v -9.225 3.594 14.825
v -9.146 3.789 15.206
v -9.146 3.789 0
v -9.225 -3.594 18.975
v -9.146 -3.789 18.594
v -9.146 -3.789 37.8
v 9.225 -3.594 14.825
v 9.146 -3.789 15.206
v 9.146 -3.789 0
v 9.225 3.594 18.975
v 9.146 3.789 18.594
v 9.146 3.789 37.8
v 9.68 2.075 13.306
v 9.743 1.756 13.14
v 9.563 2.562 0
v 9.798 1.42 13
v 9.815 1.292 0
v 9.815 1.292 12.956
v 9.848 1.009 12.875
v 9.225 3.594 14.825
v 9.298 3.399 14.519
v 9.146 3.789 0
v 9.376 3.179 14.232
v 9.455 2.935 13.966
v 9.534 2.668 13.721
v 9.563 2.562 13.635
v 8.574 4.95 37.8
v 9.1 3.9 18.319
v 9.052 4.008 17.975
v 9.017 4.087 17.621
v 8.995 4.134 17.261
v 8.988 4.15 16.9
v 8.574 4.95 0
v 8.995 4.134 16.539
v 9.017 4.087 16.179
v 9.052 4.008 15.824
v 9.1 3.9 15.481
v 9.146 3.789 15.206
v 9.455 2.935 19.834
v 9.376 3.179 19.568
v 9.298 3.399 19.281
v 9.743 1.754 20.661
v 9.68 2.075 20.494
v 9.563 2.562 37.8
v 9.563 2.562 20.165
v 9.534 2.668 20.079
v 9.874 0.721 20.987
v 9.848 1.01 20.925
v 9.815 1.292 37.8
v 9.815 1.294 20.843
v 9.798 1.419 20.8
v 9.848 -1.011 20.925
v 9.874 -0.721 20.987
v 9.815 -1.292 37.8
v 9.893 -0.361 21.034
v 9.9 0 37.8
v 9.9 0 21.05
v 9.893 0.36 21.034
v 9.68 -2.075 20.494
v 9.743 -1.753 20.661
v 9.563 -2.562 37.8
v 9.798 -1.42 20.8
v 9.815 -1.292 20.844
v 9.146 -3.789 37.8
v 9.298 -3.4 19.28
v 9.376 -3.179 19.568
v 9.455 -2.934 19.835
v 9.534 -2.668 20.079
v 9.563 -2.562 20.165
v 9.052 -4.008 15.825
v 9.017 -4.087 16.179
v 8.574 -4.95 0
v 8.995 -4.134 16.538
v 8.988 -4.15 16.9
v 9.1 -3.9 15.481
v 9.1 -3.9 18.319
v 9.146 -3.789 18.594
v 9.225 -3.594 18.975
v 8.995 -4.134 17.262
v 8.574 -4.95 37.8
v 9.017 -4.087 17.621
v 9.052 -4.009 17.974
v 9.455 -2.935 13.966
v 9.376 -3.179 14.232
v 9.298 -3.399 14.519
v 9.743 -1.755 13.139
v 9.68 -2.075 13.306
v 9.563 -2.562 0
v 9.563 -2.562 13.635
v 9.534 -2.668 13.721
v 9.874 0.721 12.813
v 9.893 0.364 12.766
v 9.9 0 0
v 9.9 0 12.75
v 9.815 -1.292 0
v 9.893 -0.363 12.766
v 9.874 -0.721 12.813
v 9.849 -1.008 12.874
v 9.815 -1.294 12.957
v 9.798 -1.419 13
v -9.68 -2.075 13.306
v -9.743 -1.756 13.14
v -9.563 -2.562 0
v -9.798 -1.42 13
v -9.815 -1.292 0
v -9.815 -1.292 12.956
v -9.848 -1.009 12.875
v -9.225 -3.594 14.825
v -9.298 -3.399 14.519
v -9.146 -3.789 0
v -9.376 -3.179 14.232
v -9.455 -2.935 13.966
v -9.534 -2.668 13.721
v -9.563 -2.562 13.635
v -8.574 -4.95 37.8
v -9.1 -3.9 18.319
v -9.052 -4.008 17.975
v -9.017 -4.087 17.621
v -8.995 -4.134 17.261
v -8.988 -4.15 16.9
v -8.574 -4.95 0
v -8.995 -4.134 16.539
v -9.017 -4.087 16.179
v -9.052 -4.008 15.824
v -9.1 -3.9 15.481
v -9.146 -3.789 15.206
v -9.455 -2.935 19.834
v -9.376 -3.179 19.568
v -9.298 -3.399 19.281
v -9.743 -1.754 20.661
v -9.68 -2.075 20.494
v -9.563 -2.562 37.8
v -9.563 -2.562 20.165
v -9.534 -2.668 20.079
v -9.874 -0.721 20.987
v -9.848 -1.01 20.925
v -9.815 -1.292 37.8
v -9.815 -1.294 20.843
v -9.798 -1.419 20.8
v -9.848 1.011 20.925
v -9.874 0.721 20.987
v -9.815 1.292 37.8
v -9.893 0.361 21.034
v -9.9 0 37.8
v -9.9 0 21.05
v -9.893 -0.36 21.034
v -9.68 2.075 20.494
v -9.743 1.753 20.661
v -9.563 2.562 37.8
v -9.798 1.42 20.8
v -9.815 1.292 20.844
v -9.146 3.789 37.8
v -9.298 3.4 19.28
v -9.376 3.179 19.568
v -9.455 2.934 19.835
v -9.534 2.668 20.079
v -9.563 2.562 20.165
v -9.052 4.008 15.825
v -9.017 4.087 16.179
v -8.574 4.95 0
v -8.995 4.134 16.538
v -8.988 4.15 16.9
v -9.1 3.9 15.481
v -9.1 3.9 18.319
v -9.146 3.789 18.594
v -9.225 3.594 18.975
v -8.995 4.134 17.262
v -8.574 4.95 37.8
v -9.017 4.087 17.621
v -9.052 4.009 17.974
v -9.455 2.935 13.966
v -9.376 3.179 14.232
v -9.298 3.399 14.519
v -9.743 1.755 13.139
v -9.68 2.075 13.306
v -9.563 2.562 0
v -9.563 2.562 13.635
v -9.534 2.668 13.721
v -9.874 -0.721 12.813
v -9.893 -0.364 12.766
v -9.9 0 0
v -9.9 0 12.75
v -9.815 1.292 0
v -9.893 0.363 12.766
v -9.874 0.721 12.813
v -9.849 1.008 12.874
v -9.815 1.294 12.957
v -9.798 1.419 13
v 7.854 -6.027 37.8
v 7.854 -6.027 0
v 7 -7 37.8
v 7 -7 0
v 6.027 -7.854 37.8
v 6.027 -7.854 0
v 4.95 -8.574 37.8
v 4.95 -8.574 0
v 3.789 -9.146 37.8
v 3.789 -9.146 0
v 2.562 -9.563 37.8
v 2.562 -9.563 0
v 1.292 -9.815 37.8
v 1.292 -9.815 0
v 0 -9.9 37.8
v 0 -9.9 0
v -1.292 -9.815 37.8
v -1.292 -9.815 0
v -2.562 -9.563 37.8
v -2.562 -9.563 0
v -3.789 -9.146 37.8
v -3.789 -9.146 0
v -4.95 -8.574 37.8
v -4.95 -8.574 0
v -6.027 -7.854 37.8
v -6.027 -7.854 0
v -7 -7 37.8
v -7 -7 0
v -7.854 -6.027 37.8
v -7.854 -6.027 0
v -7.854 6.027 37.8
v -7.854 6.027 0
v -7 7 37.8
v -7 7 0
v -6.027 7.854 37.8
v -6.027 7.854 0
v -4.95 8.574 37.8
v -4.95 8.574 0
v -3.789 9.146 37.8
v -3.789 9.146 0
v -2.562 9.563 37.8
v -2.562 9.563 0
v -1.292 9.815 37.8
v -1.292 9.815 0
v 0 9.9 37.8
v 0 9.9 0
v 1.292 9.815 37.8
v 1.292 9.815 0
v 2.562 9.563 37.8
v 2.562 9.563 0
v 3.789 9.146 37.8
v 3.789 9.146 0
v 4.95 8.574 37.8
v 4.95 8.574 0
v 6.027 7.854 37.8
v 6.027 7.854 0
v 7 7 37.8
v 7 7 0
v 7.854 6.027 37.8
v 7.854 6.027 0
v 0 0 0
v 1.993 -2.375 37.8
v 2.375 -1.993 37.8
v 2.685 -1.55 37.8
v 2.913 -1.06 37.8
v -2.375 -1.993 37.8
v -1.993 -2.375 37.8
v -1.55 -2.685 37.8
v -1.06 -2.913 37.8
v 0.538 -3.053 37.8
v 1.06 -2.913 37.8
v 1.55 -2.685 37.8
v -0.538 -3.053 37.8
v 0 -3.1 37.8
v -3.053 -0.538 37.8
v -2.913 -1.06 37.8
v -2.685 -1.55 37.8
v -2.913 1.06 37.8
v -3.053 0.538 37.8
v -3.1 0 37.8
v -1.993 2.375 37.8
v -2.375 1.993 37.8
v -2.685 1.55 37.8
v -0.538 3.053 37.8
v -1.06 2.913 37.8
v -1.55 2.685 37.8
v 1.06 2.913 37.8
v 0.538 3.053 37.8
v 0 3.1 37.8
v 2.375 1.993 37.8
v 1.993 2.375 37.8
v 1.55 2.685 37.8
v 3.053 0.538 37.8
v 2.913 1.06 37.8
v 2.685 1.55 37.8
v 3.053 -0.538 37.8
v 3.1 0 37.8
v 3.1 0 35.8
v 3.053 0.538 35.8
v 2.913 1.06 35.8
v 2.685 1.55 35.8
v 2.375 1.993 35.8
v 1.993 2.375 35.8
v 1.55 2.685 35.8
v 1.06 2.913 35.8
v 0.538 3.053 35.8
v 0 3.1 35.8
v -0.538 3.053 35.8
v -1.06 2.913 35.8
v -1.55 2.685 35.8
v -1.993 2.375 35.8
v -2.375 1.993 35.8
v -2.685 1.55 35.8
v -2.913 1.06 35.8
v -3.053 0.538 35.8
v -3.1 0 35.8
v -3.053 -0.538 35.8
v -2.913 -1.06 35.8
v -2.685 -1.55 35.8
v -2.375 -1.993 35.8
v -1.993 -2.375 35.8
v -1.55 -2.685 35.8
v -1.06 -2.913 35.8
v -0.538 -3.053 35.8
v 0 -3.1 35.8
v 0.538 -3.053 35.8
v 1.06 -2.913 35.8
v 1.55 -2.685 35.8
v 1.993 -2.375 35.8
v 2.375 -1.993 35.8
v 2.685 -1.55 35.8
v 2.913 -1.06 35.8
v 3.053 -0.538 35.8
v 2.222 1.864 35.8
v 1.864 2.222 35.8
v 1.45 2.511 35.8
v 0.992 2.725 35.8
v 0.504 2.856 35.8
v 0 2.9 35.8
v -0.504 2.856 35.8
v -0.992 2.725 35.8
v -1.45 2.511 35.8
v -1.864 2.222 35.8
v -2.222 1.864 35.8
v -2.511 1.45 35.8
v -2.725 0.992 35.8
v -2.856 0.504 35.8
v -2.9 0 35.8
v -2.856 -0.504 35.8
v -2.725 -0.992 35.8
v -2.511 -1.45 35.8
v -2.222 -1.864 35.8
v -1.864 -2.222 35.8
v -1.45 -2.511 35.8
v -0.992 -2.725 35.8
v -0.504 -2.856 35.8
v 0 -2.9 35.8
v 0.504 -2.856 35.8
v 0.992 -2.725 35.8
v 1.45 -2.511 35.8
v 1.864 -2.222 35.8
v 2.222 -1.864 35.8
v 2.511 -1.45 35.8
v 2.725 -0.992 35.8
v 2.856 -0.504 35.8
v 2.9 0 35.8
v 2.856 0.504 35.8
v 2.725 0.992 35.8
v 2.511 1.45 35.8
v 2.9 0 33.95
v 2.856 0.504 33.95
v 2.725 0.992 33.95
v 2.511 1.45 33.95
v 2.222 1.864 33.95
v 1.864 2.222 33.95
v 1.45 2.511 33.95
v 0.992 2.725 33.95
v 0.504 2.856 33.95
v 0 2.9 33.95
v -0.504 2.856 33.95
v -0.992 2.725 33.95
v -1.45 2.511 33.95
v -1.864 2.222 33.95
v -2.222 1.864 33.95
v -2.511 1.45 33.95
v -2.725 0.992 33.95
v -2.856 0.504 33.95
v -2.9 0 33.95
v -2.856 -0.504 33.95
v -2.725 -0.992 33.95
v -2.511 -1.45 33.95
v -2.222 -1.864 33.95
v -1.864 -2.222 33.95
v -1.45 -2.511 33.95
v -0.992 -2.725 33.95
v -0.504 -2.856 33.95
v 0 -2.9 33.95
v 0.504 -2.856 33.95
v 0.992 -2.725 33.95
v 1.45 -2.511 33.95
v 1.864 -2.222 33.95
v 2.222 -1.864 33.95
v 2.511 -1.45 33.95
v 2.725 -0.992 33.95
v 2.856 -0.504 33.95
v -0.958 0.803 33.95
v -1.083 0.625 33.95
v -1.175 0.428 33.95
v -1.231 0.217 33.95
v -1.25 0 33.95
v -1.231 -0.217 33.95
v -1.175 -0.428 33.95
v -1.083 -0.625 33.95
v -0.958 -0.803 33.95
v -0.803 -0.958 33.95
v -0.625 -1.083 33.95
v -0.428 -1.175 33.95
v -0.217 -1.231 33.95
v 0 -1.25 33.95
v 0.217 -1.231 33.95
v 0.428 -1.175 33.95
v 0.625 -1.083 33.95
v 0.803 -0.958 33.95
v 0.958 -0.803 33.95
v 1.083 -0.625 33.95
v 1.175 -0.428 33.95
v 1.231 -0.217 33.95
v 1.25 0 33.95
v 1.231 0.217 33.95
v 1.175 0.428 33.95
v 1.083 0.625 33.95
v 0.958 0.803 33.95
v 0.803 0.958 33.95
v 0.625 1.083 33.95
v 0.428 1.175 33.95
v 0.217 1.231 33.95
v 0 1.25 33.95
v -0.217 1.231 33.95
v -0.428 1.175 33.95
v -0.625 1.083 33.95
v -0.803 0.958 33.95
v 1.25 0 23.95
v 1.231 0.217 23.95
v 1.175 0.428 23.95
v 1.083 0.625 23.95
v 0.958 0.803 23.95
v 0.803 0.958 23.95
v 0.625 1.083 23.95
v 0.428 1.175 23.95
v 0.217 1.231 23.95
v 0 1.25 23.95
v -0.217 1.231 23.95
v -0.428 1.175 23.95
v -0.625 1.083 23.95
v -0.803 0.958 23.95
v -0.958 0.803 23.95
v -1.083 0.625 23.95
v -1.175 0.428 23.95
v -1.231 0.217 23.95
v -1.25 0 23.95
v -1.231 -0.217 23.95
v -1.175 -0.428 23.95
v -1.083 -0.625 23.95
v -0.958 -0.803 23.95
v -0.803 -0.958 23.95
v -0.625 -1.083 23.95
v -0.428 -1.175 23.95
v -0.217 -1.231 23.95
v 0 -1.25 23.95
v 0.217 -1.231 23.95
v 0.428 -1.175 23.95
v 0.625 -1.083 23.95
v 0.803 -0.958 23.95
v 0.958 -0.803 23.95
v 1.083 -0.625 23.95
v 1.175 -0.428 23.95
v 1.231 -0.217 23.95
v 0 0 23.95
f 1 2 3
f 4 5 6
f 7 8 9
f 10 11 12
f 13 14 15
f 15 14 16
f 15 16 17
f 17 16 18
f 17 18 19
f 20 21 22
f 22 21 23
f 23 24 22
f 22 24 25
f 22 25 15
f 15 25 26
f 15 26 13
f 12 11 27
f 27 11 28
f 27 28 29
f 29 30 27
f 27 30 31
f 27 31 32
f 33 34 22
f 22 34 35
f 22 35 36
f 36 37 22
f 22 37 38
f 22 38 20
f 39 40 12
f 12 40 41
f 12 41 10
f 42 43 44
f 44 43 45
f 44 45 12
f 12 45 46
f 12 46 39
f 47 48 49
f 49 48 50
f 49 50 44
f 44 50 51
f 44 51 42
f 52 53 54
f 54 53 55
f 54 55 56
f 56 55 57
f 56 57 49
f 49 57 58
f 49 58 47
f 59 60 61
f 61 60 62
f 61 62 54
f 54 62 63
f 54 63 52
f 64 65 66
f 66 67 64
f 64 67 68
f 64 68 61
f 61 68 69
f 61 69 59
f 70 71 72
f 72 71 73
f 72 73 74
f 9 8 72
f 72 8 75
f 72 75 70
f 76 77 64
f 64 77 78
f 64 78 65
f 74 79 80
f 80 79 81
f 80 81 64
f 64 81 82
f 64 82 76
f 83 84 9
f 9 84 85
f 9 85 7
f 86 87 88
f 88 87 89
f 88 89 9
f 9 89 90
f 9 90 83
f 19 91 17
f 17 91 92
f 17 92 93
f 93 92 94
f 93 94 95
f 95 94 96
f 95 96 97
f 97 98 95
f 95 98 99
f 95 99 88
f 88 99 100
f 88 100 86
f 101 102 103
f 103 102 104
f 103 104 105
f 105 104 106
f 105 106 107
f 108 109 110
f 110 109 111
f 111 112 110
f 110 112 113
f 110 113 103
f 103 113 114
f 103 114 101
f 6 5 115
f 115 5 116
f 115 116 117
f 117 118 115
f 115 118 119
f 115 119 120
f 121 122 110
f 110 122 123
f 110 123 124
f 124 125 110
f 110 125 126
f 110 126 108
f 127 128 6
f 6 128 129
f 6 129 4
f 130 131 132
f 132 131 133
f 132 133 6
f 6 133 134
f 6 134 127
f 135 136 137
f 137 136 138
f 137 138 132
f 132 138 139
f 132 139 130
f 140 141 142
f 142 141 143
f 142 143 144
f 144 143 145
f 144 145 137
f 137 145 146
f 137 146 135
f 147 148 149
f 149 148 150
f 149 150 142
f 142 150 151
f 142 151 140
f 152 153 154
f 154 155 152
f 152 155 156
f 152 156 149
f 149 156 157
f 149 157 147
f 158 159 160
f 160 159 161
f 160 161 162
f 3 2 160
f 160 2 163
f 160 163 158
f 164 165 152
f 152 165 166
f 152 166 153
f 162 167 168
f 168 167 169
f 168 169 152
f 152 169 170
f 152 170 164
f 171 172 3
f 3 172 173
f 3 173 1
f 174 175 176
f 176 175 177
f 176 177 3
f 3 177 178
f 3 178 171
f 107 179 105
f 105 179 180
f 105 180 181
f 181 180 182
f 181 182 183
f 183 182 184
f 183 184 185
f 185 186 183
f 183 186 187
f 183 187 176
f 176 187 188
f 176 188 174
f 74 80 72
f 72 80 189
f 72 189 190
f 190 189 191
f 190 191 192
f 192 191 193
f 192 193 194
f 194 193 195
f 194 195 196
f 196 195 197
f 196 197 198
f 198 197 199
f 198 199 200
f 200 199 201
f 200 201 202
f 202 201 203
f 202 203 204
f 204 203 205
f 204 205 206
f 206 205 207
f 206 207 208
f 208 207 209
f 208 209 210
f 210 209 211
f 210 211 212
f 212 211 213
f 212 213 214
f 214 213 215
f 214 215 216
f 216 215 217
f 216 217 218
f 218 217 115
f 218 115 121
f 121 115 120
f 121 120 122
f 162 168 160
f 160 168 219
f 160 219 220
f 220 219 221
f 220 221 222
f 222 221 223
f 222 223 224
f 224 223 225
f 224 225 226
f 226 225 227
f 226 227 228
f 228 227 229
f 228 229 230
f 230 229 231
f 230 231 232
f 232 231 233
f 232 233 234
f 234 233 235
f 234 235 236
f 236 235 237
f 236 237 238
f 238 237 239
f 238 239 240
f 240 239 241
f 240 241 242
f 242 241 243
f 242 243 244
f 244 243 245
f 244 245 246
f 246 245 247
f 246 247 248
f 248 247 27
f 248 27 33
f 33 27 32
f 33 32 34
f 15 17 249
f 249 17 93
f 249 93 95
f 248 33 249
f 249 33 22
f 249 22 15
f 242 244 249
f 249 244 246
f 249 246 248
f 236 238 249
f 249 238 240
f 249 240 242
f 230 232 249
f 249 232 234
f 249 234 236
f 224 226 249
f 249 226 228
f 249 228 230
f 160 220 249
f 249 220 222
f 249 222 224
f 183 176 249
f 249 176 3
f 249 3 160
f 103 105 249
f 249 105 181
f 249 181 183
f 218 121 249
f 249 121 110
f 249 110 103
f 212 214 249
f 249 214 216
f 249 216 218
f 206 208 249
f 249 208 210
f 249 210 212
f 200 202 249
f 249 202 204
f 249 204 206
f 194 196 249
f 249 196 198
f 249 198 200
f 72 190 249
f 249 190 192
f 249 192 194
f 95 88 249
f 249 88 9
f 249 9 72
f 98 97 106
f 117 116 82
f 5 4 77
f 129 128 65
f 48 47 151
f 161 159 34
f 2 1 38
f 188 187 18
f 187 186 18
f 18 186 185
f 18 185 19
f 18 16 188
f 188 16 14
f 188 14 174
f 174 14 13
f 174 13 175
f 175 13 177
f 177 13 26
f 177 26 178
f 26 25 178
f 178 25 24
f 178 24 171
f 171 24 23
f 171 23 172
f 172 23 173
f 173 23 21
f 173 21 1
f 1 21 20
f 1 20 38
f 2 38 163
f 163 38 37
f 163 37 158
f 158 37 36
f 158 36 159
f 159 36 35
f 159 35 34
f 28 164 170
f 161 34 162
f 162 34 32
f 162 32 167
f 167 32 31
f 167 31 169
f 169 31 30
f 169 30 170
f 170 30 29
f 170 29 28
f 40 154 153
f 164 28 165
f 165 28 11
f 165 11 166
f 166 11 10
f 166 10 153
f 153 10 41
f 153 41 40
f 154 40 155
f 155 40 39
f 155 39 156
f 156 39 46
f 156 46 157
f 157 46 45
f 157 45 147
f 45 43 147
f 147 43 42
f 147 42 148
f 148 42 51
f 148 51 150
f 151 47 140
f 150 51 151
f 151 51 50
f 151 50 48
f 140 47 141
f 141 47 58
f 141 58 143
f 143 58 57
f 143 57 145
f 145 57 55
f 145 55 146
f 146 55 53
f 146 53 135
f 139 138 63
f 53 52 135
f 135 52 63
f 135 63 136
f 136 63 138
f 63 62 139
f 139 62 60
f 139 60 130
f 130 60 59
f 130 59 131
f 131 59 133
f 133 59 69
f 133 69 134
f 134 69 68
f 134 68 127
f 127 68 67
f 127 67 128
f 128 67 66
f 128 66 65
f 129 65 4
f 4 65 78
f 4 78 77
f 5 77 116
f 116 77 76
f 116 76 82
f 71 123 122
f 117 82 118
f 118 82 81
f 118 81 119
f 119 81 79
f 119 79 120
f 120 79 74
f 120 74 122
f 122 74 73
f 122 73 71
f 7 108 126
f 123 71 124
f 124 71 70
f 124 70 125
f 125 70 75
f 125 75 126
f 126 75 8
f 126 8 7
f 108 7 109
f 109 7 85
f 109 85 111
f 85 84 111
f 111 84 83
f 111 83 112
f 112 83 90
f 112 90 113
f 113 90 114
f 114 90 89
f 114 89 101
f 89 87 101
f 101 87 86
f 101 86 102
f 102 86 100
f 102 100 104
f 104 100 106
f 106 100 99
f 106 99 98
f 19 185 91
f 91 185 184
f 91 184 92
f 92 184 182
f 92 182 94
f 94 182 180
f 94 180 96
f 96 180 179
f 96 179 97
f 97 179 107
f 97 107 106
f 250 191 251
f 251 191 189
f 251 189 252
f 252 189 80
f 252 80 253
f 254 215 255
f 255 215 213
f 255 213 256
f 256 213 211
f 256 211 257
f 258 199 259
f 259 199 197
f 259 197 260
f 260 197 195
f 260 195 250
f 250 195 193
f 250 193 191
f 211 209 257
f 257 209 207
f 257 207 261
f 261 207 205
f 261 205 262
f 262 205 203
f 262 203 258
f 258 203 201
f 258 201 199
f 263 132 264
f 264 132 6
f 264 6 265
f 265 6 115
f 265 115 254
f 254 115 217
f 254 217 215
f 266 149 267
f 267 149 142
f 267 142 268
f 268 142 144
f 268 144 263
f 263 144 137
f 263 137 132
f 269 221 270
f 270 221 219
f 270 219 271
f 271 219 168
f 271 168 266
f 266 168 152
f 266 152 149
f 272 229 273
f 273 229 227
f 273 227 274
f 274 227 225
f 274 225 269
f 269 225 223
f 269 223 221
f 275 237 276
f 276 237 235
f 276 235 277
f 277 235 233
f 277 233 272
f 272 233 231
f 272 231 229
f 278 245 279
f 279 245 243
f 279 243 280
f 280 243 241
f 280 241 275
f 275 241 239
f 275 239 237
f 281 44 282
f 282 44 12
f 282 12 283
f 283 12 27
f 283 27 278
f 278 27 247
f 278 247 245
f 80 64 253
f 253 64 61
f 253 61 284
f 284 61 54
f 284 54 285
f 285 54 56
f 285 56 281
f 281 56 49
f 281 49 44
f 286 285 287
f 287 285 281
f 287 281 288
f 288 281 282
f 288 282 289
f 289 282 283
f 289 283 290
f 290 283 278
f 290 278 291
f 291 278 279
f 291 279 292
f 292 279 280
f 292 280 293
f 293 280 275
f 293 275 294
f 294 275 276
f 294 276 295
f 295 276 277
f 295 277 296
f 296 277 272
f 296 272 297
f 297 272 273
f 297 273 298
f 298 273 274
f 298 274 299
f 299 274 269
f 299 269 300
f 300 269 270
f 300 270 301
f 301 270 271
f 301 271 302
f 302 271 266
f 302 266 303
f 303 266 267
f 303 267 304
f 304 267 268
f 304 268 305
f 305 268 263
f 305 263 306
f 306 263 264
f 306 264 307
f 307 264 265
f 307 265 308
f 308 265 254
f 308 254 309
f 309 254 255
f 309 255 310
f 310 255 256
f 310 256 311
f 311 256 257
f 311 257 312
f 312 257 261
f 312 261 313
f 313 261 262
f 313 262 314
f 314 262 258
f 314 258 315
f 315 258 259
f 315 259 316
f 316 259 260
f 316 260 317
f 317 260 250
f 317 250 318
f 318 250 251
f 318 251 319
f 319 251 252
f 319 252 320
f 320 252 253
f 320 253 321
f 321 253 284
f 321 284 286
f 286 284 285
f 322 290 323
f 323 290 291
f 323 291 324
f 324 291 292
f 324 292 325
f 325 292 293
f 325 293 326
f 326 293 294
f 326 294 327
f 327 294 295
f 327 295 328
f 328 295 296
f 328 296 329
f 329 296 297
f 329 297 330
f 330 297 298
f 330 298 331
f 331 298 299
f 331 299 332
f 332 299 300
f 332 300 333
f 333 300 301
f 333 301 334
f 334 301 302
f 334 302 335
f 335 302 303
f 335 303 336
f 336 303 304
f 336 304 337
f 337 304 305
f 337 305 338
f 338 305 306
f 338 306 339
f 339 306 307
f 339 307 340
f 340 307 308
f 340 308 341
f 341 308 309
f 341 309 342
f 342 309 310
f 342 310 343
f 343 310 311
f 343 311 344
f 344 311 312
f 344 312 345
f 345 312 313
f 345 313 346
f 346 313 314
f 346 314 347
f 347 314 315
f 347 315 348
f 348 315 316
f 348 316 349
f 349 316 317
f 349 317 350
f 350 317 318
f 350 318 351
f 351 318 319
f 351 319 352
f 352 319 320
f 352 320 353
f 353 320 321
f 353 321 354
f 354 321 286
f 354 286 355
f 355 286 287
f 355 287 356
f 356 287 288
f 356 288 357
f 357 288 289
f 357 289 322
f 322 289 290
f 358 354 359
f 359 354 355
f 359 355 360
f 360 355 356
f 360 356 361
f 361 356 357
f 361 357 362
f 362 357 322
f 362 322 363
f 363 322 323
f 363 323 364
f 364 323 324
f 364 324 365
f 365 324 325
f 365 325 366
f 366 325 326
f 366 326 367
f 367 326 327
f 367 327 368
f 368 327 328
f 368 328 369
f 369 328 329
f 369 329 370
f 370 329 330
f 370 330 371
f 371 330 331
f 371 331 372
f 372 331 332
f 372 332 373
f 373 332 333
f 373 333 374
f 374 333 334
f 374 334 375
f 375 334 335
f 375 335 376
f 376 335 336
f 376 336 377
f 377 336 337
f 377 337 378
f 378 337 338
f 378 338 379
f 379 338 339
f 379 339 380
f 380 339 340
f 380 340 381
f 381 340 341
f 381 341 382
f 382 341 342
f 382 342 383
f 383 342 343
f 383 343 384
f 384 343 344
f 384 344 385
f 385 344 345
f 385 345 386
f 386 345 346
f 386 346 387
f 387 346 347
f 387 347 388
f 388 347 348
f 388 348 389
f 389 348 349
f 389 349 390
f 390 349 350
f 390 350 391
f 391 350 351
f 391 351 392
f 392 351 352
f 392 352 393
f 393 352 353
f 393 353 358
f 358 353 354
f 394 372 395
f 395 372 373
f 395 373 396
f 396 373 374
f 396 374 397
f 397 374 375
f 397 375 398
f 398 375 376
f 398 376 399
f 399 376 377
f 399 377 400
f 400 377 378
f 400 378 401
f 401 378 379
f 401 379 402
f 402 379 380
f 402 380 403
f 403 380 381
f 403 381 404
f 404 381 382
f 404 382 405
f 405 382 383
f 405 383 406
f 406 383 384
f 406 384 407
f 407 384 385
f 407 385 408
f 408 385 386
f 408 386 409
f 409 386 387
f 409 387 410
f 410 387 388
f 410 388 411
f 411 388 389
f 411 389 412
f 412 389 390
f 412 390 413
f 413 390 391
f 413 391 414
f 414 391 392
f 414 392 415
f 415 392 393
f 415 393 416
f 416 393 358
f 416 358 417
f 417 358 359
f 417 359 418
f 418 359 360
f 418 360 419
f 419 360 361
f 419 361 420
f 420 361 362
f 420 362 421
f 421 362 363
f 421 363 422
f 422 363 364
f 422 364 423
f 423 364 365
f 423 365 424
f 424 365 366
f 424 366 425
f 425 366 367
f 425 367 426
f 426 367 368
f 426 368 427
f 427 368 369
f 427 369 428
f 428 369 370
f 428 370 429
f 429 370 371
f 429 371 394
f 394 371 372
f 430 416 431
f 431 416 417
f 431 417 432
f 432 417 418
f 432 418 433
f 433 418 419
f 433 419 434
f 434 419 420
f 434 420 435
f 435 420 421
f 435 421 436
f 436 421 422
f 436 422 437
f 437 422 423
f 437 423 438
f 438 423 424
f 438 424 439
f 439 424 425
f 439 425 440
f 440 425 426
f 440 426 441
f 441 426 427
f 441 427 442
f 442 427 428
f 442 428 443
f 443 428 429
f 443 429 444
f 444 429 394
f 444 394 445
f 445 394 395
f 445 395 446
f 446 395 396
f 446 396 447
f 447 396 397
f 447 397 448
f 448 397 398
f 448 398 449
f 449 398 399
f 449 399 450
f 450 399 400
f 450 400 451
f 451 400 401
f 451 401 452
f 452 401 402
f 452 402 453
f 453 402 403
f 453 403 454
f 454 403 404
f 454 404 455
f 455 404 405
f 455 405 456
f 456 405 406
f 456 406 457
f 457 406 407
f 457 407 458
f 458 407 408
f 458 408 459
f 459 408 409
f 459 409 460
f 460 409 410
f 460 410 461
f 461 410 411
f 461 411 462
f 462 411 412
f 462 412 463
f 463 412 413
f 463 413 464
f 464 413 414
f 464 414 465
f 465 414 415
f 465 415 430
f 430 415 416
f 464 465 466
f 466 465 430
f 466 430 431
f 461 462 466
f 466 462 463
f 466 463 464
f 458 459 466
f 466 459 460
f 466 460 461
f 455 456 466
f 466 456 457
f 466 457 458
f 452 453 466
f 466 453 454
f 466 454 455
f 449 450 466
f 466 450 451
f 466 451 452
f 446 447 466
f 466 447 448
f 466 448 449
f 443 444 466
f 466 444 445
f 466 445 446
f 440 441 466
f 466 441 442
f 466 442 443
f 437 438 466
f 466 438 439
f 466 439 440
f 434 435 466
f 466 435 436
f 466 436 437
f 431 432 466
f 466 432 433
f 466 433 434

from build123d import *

# Parameters (mm, degrees)
SCHIZZO1_R                    = 9.9
ESTRUSIONE_ESTRUSIONE1_DEPTH  = 29.8
TAGLIO_ESTRUSIONE1_DEPTH      = 33.925066439
TAGLIO_ESTRUSIONE1_DEPTH_BACK = 33.925066439
SCHIZZO3_R                    = 4.15
SCHIZZO5_R                    = 9.9
ESTRUSIONE_ESTRUSIONE2_DEPTH  = 8
SCHIZZO6_R                    = 3.1
TAGLIO_ESTRUSIONE3_DEPTH      = 2
SCHIZZO7_R                    = 2.9
TAGLIO_ESTRUSIONE4_DEPTH      = 1.85
SCHIZZO8_R                    = 1.25
TAGLIO_ESTRUSIONE5_DEPTH      = 10


with BuildPart() as part:
    # Schizzo1 → Estrusione-Estrusione1 (new body)
    with BuildSketch(Plane.XY):
        Circle(SCHIZZO1_R)
    extrude(amount=ESTRUSIONE_ESTRUSIONE1_DEPTH)

    # Schizzo3 → Taglio-Estrusione1 (cut, two sides: drawn at the far end of the back side and taken through both)
    with BuildSketch(Plane(origin=(0, 0, 0), x_dir=(0, 0, -1), z_dir=(1, 0, 0)).offset(-TAGLIO_ESTRUSIONE1_DEPTH_BACK)):
        with Locations((-16.9, 0)):
            Circle(SCHIZZO3_R)
    extrude(amount=TAGLIO_ESTRUSIONE1_DEPTH + TAGLIO_ESTRUSIONE1_DEPTH_BACK, mode=Mode.SUBTRACT)

    # Schizzo5 → Estrusione-Estrusione2 (add)
    with BuildSketch(Plane.XY.offset(29.8)):
        Circle(SCHIZZO5_R)
    extrude(amount=ESTRUSIONE_ESTRUSIONE2_DEPTH)

    # Schizzo6 → Taglio-Estrusione3 (cut)
    with BuildSketch(Plane.XY.offset(37.8)):
        Circle(SCHIZZO6_R)
    extrude(amount=-TAGLIO_ESTRUSIONE3_DEPTH, mode=Mode.SUBTRACT)

    # Schizzo7 → Taglio-Estrusione4 (cut)
    with BuildSketch(Plane.XY.offset(35.8)):
        Circle(SCHIZZO7_R)
    extrude(amount=-TAGLIO_ESTRUSIONE4_DEPTH, mode=Mode.SUBTRACT)

    # Schizzo8 → Taglio-Estrusione5 (cut)
    with BuildSketch(Plane.XY.offset(33.95)):
        Circle(SCHIZZO8_R)
    extrude(amount=-TAGLIO_ESTRUSIONE5_DEPTH, mode=Mode.SUBTRACT)


solid = part.part
